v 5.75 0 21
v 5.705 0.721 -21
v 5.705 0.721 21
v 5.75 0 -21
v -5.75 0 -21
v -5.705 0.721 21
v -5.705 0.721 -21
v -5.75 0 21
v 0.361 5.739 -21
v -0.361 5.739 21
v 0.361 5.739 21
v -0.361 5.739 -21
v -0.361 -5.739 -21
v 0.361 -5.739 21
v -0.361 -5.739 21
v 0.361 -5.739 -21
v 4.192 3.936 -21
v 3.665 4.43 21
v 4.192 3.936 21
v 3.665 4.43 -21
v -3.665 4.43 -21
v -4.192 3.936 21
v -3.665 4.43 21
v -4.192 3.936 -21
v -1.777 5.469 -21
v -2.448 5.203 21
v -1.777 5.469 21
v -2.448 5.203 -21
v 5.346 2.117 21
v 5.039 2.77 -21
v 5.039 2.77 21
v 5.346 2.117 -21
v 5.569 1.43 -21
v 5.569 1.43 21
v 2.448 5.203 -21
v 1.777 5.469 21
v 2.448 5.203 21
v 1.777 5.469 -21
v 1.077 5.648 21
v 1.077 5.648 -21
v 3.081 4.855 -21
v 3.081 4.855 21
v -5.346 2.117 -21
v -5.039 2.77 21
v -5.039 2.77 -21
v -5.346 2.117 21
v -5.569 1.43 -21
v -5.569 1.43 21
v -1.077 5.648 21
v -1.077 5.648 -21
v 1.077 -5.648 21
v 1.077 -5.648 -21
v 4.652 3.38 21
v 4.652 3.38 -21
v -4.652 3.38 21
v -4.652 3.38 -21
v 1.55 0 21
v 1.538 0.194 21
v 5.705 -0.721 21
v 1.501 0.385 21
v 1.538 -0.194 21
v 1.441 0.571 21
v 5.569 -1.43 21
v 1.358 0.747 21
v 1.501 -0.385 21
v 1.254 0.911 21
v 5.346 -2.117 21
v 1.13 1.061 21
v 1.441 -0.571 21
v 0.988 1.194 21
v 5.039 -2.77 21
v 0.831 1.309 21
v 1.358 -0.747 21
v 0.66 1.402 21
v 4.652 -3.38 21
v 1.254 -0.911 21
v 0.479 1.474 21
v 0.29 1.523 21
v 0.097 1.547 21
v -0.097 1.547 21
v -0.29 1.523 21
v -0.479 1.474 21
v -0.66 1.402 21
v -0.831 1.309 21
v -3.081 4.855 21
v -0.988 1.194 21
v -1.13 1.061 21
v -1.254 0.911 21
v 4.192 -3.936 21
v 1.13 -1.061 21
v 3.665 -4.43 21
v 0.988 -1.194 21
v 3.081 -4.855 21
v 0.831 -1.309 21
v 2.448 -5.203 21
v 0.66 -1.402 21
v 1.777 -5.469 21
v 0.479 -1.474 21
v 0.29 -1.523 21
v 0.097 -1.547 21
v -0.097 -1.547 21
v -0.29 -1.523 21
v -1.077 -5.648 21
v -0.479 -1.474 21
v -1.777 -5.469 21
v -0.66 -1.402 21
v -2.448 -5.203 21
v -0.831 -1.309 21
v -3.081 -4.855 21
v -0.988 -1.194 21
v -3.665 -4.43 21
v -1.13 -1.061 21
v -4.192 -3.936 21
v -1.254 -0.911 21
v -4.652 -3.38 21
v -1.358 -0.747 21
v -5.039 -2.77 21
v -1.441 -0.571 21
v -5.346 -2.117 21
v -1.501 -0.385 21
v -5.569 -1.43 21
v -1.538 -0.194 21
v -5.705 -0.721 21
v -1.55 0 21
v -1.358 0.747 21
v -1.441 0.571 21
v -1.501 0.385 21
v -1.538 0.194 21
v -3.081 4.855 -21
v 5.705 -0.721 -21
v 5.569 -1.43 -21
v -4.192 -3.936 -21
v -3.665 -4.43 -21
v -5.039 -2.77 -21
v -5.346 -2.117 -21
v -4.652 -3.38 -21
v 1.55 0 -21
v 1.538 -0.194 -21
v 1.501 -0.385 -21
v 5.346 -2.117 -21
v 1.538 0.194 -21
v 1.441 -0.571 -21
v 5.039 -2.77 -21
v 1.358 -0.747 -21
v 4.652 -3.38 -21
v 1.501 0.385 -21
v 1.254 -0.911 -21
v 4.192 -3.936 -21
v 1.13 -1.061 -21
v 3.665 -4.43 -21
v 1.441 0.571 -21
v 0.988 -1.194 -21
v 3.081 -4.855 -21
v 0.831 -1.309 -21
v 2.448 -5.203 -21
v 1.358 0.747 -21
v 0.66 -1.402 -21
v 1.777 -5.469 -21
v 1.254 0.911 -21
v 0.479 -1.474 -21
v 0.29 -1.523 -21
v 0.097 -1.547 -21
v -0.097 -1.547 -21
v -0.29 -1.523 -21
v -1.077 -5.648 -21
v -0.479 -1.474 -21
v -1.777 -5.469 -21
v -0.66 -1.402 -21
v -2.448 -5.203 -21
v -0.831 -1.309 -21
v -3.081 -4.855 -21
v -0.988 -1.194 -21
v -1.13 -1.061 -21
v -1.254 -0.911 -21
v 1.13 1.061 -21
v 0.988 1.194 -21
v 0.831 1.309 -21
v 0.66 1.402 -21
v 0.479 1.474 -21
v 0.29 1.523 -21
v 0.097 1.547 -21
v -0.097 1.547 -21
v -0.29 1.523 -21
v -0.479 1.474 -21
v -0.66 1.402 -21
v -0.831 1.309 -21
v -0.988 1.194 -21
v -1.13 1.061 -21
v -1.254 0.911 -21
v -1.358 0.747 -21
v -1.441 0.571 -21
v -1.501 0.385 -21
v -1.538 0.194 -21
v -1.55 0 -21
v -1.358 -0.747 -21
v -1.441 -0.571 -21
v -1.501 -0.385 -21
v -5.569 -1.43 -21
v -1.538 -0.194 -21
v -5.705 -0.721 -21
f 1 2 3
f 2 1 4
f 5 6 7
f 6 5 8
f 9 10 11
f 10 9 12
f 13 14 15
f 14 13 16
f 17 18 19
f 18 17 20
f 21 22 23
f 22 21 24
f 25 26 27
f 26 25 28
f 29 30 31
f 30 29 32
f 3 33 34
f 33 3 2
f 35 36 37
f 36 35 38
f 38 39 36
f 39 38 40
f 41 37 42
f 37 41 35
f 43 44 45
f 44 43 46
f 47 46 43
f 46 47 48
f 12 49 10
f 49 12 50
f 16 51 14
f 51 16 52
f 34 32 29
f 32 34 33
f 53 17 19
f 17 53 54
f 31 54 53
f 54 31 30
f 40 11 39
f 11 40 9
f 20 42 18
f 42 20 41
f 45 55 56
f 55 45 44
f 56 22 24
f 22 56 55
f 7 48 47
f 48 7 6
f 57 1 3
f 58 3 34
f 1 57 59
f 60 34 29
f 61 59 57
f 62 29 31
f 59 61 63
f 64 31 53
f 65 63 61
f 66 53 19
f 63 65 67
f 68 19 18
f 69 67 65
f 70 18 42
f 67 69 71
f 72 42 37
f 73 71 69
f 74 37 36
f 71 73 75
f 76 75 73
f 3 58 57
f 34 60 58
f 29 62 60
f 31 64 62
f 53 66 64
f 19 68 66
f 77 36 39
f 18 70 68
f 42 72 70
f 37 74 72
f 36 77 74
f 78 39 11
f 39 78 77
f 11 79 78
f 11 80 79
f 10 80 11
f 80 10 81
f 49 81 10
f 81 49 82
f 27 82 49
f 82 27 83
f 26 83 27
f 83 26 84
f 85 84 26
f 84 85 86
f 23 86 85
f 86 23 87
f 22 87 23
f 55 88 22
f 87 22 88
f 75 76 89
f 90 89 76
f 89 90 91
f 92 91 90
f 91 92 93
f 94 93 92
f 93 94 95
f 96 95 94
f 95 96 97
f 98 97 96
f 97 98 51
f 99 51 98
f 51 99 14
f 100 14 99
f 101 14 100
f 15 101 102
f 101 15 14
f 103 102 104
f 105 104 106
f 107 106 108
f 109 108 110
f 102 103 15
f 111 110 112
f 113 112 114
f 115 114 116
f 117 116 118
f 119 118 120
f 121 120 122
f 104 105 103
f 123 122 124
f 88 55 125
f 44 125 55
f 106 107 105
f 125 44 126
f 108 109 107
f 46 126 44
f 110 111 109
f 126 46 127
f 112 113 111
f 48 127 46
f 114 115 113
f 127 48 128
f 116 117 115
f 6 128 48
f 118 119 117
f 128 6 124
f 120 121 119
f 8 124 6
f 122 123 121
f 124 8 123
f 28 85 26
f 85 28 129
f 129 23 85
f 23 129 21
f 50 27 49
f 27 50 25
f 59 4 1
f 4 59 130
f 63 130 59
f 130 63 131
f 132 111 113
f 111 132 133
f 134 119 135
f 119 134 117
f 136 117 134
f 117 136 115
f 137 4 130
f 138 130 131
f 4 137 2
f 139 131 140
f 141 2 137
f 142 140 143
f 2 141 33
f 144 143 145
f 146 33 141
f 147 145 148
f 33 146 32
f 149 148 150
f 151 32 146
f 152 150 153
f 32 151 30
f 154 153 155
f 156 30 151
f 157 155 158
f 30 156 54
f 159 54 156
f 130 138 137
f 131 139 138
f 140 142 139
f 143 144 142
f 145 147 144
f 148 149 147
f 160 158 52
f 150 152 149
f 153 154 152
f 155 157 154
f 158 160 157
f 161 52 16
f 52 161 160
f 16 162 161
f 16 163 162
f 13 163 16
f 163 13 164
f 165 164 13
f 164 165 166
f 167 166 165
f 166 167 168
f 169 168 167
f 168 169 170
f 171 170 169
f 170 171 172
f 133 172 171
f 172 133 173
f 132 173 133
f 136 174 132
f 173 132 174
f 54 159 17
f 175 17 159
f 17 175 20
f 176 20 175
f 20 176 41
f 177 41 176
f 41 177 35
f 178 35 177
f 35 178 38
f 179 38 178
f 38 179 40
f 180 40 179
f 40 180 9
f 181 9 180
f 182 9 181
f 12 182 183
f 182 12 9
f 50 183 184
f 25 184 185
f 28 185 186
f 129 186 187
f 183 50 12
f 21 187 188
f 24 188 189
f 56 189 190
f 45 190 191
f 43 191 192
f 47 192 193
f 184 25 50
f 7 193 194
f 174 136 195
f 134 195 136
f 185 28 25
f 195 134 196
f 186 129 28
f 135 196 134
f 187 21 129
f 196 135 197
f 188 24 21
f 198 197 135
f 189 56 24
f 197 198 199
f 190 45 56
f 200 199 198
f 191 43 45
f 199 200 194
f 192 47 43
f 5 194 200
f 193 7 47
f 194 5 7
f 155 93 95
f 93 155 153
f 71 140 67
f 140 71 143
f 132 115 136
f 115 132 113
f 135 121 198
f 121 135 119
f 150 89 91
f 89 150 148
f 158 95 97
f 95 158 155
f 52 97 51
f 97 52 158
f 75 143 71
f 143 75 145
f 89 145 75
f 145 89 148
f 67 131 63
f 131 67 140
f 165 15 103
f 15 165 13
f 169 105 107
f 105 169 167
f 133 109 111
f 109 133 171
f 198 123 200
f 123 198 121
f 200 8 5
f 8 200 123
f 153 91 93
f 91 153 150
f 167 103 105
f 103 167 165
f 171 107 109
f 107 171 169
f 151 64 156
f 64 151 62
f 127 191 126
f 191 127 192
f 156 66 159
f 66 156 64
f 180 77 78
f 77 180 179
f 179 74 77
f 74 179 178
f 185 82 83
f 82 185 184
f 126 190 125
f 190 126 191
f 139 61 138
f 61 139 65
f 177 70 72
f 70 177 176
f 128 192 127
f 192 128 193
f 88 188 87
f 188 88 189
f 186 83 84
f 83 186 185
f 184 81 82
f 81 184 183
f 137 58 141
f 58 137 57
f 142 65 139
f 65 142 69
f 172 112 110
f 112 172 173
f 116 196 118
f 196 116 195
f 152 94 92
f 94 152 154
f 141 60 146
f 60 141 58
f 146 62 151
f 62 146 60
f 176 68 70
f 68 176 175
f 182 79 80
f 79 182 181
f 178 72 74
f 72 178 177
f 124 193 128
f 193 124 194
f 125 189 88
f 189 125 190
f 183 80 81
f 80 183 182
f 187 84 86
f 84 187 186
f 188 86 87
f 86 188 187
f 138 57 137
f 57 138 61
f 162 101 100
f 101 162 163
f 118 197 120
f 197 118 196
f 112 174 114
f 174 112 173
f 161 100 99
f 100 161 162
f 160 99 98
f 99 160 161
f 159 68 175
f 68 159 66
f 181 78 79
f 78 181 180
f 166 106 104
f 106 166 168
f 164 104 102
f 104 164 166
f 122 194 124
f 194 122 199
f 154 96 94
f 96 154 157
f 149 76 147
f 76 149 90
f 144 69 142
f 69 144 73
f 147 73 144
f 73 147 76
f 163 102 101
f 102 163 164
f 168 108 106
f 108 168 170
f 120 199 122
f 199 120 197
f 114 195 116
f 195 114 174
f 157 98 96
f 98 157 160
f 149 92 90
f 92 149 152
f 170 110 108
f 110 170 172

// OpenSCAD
$fn = 50;


difference() {
	union() {
		translate(v = [0, 0, -21.0000000000]) {
			cylinder(h = 42, r = 5.7500000000);
		}
	}
	union() {
		translate(v = [0, 0, -100.0000000000]) {
			cylinder(h = 200, r = 1.5500000000);
		}
	}
}
